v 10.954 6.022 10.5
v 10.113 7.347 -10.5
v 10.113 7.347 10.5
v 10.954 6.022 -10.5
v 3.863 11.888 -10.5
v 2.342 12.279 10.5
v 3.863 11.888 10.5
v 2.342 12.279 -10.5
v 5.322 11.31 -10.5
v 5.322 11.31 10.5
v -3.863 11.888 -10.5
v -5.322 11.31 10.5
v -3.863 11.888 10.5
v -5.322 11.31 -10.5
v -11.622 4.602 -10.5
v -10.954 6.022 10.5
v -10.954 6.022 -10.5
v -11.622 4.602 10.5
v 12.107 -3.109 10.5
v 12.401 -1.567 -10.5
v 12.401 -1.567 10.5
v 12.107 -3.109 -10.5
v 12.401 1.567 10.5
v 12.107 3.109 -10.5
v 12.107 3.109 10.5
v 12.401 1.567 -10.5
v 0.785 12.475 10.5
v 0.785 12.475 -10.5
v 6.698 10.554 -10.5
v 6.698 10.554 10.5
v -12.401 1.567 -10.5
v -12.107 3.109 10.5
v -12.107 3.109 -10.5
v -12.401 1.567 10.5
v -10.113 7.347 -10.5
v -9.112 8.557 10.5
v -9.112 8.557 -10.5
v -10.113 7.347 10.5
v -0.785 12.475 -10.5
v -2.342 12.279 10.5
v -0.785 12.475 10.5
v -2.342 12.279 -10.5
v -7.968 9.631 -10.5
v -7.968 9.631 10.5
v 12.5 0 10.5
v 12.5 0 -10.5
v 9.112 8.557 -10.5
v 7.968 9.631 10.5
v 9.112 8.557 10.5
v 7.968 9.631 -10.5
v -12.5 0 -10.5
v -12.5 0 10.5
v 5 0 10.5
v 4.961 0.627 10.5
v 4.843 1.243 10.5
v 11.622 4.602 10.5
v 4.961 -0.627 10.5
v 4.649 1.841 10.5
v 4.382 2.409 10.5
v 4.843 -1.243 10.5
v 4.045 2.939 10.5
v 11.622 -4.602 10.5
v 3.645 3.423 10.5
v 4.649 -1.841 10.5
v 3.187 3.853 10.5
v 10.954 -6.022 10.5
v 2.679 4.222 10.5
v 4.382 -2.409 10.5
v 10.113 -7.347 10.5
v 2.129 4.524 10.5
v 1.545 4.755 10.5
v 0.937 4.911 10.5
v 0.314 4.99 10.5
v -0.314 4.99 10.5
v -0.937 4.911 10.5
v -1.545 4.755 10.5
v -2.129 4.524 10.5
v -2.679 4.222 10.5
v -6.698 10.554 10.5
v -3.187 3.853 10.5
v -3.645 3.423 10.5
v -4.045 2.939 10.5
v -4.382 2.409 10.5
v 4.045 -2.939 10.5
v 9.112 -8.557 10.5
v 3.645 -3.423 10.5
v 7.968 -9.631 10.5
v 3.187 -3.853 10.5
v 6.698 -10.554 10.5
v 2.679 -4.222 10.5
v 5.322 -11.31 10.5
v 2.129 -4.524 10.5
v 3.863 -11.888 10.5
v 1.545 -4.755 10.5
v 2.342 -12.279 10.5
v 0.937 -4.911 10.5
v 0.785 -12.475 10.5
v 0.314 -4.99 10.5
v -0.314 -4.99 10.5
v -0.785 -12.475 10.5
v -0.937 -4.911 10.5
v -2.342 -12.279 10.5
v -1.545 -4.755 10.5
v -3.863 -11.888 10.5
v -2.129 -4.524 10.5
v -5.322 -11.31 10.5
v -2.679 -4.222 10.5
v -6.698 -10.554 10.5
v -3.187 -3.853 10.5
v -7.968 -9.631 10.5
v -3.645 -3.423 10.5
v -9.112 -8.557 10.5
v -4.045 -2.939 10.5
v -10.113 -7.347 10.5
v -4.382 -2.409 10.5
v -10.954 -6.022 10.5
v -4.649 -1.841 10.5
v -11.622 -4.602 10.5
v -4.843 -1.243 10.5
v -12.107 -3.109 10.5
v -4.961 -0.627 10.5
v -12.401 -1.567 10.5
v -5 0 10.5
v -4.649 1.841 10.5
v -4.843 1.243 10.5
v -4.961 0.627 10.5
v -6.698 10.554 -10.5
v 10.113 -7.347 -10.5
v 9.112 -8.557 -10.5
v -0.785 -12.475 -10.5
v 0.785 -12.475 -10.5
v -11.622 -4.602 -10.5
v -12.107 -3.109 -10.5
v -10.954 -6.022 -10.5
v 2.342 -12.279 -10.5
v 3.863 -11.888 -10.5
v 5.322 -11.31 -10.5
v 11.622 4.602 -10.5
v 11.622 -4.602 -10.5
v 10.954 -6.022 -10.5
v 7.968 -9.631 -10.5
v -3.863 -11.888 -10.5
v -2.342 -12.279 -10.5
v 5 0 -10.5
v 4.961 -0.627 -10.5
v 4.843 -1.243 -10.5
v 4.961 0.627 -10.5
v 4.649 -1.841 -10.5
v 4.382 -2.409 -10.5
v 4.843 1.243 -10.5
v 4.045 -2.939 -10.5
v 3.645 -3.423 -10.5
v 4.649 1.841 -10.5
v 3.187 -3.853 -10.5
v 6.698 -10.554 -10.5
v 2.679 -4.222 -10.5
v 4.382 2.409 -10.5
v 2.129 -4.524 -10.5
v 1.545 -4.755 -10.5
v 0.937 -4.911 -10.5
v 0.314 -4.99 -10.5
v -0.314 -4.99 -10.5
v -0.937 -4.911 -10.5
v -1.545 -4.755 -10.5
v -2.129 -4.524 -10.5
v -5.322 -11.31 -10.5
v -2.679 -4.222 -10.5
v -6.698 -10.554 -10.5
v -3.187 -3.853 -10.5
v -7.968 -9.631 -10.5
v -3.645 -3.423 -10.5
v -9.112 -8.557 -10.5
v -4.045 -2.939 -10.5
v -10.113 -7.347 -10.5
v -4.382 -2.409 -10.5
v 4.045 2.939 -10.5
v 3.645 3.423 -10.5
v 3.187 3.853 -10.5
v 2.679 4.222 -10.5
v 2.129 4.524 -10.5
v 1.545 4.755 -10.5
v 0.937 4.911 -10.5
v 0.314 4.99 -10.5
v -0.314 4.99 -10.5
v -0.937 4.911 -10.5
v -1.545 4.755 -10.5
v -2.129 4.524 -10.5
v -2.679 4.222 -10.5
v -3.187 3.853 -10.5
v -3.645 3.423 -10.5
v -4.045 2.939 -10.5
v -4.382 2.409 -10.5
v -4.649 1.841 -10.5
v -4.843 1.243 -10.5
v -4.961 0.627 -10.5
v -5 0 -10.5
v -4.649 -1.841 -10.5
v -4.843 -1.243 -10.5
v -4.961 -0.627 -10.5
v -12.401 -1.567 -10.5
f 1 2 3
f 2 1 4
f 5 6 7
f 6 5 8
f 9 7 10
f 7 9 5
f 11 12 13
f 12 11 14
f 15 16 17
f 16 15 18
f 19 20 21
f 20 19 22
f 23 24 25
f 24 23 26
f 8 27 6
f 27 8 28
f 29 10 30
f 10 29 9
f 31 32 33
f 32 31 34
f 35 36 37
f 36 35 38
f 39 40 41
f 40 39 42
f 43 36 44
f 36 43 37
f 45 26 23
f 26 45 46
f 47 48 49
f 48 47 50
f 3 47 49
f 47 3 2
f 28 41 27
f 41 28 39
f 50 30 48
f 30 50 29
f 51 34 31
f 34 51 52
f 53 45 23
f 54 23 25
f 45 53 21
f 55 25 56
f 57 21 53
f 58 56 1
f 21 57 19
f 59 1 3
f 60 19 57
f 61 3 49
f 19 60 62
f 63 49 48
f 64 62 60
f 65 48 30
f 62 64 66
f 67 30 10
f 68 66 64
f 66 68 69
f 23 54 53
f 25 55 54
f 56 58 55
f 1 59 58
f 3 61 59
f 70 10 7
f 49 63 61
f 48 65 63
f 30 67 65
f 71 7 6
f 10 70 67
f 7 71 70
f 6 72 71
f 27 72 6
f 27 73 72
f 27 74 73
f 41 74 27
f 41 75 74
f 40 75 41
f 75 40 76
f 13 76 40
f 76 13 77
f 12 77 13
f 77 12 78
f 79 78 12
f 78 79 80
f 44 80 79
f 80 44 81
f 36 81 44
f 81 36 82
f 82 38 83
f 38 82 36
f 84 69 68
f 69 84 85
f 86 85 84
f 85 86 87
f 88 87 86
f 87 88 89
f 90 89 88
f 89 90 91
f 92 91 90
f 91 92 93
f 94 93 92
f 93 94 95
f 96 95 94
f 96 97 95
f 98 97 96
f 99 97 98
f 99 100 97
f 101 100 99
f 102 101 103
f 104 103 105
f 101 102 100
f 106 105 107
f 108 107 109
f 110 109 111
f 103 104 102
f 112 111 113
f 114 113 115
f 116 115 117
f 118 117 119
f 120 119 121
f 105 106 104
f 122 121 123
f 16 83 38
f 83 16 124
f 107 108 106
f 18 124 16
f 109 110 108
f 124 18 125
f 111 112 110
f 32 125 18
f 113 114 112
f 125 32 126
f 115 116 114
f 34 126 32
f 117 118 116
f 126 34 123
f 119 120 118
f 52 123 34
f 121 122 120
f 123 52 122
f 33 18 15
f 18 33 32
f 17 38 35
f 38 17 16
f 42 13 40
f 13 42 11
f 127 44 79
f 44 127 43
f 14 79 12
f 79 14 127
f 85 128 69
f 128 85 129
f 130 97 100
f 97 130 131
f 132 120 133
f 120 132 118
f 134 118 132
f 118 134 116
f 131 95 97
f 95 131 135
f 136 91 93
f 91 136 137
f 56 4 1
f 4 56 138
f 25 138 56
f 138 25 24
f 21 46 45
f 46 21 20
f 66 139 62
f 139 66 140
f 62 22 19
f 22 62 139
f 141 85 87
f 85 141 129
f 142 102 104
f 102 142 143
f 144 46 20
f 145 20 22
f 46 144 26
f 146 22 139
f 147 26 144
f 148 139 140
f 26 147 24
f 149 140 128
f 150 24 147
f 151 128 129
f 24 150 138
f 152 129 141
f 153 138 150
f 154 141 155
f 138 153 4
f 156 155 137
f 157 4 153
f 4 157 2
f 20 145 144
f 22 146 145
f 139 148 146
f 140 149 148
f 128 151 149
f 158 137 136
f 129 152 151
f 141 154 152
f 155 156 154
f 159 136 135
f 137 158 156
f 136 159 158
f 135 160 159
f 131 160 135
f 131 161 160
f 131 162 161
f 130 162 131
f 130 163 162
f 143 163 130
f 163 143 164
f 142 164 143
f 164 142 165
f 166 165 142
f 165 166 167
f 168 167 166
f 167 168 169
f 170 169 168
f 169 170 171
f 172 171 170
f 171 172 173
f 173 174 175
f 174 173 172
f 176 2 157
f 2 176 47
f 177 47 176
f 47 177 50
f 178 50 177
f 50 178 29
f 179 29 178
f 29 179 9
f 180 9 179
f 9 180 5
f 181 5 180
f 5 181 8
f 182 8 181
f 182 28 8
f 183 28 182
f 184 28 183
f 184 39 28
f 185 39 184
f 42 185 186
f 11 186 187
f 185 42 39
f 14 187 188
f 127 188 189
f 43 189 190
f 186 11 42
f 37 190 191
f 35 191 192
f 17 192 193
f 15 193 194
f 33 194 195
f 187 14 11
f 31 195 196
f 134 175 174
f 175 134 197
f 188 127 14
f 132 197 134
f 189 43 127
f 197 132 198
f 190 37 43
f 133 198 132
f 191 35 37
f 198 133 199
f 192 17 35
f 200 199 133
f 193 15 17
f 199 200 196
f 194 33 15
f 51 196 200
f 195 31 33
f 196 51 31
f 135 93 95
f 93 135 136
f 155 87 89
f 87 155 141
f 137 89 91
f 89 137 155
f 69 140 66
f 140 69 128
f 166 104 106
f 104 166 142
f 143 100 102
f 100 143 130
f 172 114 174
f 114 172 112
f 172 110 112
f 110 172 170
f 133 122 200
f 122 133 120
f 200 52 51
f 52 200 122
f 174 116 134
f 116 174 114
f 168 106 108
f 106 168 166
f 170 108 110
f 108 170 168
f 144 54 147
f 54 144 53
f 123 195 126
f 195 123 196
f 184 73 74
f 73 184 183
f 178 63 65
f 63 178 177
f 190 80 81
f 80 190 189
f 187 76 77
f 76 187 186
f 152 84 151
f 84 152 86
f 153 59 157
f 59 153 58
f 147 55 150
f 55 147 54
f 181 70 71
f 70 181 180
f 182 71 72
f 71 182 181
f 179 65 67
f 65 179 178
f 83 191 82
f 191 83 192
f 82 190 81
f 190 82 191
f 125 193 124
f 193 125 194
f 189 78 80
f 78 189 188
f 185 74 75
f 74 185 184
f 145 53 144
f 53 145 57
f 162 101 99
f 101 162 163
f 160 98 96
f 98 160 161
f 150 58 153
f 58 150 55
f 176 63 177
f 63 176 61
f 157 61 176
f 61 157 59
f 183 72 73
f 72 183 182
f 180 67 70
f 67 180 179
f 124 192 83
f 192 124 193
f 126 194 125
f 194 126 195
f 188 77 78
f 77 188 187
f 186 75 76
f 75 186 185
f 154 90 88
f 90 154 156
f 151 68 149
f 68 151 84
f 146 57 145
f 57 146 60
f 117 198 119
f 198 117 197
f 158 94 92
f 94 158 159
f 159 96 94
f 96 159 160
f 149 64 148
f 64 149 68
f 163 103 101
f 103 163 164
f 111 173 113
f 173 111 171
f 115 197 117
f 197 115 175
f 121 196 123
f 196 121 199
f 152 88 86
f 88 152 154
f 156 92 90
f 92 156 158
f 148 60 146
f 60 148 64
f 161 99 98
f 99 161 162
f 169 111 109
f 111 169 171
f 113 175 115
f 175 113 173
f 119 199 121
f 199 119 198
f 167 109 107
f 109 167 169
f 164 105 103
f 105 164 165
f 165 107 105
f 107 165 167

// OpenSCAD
$fn = 50;


difference() {
	union() {
		translate(v = [0, 0, -10.5000000000]) {
			cylinder(h = 21, r = 12.5000000000);
		}
	}
	union() {
		translate(v = [0, 0, -100.0000000000]) {
			cylinder(h = 200, r = 5);
		}
	}
}
